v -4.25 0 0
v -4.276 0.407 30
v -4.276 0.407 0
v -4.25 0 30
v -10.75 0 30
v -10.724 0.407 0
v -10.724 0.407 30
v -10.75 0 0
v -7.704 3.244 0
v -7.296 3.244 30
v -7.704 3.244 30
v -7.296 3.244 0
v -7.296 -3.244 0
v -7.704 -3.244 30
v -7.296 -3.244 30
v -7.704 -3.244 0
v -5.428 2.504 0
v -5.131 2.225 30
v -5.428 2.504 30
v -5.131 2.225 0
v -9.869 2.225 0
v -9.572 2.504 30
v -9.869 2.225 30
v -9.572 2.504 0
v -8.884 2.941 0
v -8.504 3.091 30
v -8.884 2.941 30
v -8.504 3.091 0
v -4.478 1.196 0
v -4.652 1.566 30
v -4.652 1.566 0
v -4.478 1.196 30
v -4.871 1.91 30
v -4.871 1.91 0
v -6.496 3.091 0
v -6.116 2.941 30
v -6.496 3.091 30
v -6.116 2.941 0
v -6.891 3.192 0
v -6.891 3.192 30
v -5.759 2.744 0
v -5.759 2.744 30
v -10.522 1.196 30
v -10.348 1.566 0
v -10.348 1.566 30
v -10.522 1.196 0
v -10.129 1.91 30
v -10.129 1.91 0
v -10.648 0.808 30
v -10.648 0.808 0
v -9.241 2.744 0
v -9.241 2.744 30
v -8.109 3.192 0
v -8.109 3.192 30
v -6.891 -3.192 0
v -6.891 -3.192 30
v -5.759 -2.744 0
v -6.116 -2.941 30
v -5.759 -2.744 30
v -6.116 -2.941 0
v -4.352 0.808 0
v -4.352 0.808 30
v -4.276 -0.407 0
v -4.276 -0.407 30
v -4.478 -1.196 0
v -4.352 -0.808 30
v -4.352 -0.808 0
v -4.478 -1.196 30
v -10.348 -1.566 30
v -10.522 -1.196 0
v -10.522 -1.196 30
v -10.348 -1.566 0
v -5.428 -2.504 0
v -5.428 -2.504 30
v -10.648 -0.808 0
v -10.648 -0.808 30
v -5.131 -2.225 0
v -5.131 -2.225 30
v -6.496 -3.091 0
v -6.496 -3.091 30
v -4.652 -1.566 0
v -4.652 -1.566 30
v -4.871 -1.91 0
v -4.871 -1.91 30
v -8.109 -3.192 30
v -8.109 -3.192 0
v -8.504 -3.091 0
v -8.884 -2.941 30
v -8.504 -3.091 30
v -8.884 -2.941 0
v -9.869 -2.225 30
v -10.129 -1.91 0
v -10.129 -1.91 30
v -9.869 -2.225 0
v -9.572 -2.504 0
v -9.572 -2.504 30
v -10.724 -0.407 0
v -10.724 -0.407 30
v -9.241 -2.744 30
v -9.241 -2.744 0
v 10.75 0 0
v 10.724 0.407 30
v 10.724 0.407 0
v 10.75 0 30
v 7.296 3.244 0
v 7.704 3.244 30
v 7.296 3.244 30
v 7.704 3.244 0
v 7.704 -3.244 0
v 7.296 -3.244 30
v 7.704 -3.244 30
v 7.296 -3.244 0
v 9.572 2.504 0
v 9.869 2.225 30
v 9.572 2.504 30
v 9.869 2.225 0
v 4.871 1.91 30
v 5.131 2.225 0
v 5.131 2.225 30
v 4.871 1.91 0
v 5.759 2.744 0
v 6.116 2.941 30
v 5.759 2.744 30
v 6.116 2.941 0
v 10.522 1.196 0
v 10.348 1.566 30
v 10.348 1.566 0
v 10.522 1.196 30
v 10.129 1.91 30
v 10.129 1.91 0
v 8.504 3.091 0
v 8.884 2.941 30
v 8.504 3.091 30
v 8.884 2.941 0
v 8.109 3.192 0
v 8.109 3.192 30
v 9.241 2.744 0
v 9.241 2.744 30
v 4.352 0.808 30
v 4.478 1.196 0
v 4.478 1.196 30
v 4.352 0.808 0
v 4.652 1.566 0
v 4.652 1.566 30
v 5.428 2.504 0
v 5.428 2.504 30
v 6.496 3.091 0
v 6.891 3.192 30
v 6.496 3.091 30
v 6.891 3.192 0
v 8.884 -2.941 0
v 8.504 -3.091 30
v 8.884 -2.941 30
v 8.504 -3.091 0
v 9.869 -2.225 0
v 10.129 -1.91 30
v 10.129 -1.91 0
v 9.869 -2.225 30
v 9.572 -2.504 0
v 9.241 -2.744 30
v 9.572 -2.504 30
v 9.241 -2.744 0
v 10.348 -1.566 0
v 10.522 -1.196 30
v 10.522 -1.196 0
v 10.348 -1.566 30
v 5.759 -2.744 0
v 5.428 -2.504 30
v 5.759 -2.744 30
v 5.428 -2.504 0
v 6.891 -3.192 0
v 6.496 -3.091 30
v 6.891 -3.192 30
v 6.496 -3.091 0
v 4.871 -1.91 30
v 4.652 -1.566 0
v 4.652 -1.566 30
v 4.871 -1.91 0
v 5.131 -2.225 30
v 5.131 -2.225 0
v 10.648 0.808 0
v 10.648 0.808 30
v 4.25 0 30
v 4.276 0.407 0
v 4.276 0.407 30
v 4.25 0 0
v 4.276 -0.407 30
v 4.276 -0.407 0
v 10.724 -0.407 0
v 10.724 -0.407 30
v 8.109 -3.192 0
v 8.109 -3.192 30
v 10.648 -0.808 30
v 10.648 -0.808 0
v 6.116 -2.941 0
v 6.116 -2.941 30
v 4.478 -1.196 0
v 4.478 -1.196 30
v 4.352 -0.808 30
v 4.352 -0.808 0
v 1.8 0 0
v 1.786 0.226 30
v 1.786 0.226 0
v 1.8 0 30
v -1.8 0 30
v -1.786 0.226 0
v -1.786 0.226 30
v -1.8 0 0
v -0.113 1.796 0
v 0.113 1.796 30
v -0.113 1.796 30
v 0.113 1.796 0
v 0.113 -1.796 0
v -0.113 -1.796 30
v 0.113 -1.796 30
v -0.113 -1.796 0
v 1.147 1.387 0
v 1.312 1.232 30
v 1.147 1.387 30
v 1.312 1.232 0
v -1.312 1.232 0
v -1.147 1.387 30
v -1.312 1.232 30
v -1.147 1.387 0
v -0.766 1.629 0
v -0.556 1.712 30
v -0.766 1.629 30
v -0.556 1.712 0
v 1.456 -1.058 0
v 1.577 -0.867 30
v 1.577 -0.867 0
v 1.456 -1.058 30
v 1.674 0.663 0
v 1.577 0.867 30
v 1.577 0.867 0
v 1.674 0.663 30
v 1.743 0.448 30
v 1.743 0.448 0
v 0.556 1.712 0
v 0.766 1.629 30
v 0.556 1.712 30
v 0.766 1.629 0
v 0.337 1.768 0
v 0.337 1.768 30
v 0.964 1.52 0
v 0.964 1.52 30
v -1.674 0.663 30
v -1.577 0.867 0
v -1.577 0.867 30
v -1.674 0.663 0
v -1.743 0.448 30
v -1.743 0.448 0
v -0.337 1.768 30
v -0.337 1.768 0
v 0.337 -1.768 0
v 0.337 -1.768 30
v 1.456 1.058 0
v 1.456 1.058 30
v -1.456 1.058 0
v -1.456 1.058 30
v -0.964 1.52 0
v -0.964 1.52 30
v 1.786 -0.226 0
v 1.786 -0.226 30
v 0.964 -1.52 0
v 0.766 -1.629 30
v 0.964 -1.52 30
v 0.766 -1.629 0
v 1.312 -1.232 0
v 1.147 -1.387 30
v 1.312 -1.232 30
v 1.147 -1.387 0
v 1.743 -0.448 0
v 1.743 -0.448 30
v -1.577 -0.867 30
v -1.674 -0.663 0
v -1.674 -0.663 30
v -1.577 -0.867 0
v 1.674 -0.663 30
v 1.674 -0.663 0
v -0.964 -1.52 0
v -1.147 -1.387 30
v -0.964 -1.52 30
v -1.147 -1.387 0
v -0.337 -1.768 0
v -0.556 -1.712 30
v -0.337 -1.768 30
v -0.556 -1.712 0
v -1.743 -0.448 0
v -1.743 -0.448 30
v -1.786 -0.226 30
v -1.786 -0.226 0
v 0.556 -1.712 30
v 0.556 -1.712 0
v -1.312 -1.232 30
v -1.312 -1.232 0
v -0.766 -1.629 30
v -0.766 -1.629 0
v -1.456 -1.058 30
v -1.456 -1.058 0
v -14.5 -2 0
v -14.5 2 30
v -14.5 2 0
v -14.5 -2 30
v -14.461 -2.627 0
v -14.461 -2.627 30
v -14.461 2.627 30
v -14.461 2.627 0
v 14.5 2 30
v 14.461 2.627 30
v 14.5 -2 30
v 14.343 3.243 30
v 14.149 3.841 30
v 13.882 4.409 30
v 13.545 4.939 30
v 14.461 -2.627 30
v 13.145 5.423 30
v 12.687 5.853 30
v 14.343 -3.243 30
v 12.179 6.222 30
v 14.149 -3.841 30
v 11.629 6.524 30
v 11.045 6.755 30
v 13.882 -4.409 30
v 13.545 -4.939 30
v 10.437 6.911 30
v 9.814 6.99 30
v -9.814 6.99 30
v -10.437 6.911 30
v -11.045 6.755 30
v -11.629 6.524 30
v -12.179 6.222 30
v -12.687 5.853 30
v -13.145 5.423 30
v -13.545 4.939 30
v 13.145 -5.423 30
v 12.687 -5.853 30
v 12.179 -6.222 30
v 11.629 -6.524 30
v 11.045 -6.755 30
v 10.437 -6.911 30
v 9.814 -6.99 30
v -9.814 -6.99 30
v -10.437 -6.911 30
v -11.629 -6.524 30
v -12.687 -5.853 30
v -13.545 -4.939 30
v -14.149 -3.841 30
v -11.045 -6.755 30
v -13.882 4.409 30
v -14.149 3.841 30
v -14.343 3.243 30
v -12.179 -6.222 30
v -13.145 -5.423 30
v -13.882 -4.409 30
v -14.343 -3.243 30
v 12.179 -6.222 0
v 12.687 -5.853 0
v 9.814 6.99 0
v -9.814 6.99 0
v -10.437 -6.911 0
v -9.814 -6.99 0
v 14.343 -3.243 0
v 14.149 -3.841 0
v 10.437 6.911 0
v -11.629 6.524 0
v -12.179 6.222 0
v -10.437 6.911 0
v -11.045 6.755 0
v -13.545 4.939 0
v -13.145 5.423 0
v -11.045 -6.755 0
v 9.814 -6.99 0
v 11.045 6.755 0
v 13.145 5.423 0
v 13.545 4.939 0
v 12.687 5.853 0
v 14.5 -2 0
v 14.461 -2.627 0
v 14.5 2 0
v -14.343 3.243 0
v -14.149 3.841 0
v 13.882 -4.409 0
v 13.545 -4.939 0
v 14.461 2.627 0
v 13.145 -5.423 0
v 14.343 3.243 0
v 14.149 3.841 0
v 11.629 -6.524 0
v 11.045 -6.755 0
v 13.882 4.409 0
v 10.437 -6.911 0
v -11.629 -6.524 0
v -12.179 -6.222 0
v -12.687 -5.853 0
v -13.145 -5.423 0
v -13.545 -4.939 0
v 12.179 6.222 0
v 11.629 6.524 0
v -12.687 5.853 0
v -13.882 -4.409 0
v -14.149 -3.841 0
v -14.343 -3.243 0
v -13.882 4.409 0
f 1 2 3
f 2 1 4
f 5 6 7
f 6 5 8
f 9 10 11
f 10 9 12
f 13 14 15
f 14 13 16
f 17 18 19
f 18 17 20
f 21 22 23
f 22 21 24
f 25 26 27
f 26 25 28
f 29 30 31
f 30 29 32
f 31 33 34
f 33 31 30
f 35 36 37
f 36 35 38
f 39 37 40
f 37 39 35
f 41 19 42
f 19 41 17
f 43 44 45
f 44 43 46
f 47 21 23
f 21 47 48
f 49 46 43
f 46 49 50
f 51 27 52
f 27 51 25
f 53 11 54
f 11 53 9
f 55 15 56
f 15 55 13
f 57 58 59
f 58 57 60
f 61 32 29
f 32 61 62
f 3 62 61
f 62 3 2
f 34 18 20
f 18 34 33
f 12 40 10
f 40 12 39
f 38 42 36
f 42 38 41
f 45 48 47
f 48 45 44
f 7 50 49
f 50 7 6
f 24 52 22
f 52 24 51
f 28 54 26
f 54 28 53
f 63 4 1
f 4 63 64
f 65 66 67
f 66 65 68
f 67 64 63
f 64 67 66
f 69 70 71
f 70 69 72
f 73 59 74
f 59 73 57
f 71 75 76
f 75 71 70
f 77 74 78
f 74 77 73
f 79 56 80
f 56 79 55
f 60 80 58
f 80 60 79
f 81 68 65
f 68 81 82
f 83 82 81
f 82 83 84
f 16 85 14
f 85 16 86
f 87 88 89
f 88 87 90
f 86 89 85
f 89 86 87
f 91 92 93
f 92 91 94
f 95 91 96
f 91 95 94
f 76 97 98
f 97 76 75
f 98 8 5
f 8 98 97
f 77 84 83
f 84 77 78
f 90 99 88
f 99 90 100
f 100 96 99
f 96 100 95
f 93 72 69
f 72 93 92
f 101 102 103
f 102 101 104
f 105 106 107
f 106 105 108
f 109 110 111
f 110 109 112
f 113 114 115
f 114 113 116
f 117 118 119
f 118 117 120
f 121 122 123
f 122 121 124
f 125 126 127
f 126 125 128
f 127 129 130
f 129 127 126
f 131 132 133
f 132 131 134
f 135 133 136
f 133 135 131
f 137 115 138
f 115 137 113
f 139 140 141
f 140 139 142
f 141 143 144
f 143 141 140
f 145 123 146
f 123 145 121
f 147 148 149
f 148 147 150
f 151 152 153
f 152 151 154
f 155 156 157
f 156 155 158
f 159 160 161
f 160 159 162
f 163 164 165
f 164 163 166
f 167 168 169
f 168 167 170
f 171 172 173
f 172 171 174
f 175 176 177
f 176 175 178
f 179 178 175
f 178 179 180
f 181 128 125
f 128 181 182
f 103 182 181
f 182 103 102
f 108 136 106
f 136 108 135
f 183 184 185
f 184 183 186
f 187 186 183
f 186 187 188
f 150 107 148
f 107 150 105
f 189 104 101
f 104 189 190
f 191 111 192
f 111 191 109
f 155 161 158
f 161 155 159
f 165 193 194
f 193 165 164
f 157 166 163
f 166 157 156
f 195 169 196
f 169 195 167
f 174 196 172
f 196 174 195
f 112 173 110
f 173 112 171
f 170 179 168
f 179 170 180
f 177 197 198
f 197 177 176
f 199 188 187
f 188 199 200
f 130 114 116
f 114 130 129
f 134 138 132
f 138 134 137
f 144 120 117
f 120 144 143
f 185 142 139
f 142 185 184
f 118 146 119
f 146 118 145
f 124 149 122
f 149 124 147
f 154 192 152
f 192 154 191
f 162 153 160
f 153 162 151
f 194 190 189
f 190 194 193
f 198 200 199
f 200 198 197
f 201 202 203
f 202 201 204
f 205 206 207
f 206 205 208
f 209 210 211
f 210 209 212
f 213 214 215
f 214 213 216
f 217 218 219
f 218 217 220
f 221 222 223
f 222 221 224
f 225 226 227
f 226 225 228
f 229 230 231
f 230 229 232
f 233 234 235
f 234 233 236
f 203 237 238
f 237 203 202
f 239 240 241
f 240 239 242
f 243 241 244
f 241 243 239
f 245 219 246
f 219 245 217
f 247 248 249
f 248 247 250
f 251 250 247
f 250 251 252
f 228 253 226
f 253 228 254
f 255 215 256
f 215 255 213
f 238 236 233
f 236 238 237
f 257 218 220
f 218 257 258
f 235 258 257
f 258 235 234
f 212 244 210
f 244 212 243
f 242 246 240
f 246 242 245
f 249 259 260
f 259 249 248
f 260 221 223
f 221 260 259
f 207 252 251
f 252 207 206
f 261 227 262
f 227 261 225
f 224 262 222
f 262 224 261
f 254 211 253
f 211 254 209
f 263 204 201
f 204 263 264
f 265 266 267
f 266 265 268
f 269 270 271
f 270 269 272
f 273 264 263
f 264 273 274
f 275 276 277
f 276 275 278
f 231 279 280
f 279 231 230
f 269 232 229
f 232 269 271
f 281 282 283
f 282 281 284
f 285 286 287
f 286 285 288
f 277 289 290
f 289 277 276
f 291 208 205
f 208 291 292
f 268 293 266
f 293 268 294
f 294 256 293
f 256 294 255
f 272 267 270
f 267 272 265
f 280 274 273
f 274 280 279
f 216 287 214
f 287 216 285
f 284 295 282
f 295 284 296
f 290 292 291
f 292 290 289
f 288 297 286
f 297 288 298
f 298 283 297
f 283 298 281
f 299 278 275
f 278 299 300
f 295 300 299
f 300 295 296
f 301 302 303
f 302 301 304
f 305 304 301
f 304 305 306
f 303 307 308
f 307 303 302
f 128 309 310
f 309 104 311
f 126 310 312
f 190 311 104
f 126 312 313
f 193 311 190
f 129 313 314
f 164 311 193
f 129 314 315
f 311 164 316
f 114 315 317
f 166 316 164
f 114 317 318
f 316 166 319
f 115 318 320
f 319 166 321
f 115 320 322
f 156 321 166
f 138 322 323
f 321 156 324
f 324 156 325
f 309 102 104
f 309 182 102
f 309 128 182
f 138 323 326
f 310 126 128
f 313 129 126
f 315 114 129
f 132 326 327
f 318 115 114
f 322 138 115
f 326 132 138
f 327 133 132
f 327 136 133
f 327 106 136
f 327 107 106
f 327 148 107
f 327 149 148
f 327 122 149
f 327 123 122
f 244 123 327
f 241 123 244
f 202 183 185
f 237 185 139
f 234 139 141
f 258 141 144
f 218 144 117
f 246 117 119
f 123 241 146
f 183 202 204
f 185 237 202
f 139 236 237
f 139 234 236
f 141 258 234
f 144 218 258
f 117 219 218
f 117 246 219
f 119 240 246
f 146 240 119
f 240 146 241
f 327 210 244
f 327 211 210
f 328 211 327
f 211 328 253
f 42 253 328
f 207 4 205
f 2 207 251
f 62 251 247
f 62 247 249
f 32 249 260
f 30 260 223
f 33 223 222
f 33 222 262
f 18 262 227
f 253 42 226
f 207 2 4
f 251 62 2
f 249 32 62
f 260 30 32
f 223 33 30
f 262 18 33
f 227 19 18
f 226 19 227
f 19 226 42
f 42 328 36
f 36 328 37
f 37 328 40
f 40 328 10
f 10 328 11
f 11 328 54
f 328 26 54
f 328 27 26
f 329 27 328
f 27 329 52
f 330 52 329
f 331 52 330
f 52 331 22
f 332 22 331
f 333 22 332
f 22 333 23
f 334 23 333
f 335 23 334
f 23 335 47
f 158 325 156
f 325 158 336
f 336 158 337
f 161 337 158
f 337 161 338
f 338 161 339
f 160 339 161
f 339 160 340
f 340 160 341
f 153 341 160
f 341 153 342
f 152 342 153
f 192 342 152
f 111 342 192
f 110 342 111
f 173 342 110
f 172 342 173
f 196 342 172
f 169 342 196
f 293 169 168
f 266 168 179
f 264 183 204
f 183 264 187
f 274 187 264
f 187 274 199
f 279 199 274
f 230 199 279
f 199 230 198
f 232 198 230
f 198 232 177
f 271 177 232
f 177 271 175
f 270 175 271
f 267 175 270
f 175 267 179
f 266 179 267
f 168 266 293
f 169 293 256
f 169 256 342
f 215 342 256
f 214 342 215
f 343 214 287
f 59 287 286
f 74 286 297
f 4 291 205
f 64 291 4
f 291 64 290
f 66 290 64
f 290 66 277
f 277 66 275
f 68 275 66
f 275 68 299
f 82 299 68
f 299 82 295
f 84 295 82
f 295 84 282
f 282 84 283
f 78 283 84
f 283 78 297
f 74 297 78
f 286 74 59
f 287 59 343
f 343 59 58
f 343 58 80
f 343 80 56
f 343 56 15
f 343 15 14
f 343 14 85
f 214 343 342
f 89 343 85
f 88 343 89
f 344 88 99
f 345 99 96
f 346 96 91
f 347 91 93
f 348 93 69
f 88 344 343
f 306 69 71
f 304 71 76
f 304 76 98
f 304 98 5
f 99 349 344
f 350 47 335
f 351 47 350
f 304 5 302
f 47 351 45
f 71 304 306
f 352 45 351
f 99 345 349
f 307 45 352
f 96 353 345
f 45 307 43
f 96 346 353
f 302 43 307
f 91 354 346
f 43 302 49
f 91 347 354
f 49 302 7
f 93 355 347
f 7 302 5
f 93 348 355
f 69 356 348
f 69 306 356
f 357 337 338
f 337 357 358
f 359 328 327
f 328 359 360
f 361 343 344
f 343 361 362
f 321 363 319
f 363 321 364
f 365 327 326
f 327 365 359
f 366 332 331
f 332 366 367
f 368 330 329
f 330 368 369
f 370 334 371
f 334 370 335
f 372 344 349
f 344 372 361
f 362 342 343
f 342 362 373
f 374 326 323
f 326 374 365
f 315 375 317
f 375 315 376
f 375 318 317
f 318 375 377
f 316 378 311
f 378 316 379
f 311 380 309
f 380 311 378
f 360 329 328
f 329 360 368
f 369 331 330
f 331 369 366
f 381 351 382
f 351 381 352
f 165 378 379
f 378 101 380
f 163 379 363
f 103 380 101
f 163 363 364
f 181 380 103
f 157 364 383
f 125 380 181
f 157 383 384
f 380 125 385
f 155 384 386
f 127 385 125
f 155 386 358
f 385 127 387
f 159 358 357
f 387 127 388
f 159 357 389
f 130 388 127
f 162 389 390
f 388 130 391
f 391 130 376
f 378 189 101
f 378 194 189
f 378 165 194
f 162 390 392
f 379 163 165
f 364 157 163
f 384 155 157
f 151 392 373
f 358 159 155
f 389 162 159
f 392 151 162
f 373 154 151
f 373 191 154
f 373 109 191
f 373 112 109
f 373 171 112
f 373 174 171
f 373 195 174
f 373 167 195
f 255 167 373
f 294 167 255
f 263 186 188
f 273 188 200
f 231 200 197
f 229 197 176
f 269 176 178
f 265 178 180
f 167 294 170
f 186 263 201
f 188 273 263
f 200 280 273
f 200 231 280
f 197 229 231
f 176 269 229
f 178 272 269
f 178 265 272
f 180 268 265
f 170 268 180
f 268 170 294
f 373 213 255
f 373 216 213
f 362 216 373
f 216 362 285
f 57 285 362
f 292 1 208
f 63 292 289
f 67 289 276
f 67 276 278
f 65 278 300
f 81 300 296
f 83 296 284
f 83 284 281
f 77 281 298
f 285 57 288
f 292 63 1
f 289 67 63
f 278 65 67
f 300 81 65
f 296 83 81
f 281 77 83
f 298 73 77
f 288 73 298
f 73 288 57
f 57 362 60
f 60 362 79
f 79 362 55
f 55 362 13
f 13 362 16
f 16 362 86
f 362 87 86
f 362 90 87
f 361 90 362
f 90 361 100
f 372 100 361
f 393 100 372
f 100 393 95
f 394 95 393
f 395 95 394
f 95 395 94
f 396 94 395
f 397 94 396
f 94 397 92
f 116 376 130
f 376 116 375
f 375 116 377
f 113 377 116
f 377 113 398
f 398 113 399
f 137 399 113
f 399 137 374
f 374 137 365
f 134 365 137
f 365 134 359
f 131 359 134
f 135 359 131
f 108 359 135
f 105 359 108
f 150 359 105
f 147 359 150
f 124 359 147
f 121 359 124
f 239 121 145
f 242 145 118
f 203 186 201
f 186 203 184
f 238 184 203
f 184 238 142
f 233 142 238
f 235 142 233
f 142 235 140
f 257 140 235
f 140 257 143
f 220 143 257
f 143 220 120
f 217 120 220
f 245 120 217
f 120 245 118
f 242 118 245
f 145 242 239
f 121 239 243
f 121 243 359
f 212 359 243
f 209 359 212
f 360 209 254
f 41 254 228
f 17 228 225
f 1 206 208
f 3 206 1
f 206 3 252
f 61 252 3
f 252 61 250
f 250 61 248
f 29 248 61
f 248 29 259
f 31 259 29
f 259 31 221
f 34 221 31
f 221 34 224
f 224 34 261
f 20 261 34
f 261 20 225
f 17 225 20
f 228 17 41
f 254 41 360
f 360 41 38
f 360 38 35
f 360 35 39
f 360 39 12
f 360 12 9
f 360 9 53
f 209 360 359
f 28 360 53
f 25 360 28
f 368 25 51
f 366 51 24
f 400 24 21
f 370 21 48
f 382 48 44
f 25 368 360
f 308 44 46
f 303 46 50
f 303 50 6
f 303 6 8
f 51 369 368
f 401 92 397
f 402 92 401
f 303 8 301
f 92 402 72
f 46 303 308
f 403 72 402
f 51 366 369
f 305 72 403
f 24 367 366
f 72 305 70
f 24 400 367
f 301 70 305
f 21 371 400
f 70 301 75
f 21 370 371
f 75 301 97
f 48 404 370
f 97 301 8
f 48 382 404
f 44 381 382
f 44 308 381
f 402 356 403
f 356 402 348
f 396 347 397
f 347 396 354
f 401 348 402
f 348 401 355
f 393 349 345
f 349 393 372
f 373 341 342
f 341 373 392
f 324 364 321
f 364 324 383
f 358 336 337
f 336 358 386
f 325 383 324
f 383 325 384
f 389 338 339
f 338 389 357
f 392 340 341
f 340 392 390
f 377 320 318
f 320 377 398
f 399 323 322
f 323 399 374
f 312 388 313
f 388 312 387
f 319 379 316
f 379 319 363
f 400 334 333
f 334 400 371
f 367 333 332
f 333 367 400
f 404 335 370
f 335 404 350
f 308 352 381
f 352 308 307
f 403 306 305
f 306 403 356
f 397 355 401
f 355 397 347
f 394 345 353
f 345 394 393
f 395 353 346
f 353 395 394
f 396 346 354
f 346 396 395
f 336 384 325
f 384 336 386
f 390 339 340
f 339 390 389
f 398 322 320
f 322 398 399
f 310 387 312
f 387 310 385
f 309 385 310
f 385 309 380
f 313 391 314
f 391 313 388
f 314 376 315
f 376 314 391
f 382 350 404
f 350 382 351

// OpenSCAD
$fn = 50;


difference() {
	union() {
		translate(v = [0, 0, 0]) {
			rotate(a = [0, 0, 0]) {
				hull() {
					translate(v = [-9.5000000000, 2.0000000000, 0]) {
						rotate(a = [0, 0, 0]) {
							translate(v = [0, 0, 0]) {
								rotate(a = [0, 0, 0]) {
									cylinder(h = 30, r = 5);
								}
							}
						}
					}
					translate(v = [9.5000000000, 2.0000000000, 0]) {
						rotate(a = [0, 0, 0]) {
							translate(v = [0, 0, 0]) {
								rotate(a = [0, 0, 0]) {
									cylinder(h = 30, r = 5);
								}
							}
						}
					}
					translate(v = [-9.5000000000, -2.0000000000, 0]) {
						rotate(a = [0, 0, 0]) {
							translate(v = [0, 0, 0]) {
								rotate(a = [0, 0, 0]) {
									cylinder(h = 30, r = 5);
								}
							}
						}
					}
					translate(v = [9.5000000000, -2.0000000000, 0]) {
						rotate(a = [0, 0, 0]) {
							translate(v = [0, 0, 0]) {
								rotate(a = [0, 0, 0]) {
									cylinder(h = 30, r = 5);
								}
							}
						}
					}
				}
			}
		}
	}
	union() {
		translate(v = [-7.5000000000, 0.0000000000, 0]) {
			rotate(a = [0, 0, 0]) {
				translate(v = [0, 0, -50]) {
					rotate(a = [0, 0, 0]) {
						cylinder(h = 100, r = 3.2500000000);
					}
				}
			}
		}
		translate(v = [7.5000000000, 0.0000000000, 0]) {
			rotate(a = [0, 0, 0]) {
				translate(v = [0, 0, -50]) {
					rotate(a = [0, 0, 0]) {
						cylinder(h = 100, r = 3.2500000000);
					}
				}
			}
		}
		translate(v = [-7.5000000000, 0.0000000000, 0]) {
			rotate(a = [0, 0, 0]) {
				translate(v = [0, 0, -50]) {
					rotate(a = [0, 0, 0]) {
						cylinder(h = 100, r = 1.8000000000);
					}
				}
			}
		}
		translate(v = [0.0000000000, 0.0000000000, 0]) {
			rotate(a = [0, 0, 0]) {
				translate(v = [0, 0, -50]) {
					rotate(a = [0, 0, 0]) {
						cylinder(h = 100, r = 1.8000000000);
					}
				}
			}
		}
		translate(v = [7.5000000000, 0.0000000000, 0]) {
			rotate(a = [0, 0, 0]) {
				translate(v = [0, 0, -50]) {
					rotate(a = [0, 0, 0]) {
						cylinder(h = 100, r = 1.8000000000);
					}
				}
			}
		}
	}
}
